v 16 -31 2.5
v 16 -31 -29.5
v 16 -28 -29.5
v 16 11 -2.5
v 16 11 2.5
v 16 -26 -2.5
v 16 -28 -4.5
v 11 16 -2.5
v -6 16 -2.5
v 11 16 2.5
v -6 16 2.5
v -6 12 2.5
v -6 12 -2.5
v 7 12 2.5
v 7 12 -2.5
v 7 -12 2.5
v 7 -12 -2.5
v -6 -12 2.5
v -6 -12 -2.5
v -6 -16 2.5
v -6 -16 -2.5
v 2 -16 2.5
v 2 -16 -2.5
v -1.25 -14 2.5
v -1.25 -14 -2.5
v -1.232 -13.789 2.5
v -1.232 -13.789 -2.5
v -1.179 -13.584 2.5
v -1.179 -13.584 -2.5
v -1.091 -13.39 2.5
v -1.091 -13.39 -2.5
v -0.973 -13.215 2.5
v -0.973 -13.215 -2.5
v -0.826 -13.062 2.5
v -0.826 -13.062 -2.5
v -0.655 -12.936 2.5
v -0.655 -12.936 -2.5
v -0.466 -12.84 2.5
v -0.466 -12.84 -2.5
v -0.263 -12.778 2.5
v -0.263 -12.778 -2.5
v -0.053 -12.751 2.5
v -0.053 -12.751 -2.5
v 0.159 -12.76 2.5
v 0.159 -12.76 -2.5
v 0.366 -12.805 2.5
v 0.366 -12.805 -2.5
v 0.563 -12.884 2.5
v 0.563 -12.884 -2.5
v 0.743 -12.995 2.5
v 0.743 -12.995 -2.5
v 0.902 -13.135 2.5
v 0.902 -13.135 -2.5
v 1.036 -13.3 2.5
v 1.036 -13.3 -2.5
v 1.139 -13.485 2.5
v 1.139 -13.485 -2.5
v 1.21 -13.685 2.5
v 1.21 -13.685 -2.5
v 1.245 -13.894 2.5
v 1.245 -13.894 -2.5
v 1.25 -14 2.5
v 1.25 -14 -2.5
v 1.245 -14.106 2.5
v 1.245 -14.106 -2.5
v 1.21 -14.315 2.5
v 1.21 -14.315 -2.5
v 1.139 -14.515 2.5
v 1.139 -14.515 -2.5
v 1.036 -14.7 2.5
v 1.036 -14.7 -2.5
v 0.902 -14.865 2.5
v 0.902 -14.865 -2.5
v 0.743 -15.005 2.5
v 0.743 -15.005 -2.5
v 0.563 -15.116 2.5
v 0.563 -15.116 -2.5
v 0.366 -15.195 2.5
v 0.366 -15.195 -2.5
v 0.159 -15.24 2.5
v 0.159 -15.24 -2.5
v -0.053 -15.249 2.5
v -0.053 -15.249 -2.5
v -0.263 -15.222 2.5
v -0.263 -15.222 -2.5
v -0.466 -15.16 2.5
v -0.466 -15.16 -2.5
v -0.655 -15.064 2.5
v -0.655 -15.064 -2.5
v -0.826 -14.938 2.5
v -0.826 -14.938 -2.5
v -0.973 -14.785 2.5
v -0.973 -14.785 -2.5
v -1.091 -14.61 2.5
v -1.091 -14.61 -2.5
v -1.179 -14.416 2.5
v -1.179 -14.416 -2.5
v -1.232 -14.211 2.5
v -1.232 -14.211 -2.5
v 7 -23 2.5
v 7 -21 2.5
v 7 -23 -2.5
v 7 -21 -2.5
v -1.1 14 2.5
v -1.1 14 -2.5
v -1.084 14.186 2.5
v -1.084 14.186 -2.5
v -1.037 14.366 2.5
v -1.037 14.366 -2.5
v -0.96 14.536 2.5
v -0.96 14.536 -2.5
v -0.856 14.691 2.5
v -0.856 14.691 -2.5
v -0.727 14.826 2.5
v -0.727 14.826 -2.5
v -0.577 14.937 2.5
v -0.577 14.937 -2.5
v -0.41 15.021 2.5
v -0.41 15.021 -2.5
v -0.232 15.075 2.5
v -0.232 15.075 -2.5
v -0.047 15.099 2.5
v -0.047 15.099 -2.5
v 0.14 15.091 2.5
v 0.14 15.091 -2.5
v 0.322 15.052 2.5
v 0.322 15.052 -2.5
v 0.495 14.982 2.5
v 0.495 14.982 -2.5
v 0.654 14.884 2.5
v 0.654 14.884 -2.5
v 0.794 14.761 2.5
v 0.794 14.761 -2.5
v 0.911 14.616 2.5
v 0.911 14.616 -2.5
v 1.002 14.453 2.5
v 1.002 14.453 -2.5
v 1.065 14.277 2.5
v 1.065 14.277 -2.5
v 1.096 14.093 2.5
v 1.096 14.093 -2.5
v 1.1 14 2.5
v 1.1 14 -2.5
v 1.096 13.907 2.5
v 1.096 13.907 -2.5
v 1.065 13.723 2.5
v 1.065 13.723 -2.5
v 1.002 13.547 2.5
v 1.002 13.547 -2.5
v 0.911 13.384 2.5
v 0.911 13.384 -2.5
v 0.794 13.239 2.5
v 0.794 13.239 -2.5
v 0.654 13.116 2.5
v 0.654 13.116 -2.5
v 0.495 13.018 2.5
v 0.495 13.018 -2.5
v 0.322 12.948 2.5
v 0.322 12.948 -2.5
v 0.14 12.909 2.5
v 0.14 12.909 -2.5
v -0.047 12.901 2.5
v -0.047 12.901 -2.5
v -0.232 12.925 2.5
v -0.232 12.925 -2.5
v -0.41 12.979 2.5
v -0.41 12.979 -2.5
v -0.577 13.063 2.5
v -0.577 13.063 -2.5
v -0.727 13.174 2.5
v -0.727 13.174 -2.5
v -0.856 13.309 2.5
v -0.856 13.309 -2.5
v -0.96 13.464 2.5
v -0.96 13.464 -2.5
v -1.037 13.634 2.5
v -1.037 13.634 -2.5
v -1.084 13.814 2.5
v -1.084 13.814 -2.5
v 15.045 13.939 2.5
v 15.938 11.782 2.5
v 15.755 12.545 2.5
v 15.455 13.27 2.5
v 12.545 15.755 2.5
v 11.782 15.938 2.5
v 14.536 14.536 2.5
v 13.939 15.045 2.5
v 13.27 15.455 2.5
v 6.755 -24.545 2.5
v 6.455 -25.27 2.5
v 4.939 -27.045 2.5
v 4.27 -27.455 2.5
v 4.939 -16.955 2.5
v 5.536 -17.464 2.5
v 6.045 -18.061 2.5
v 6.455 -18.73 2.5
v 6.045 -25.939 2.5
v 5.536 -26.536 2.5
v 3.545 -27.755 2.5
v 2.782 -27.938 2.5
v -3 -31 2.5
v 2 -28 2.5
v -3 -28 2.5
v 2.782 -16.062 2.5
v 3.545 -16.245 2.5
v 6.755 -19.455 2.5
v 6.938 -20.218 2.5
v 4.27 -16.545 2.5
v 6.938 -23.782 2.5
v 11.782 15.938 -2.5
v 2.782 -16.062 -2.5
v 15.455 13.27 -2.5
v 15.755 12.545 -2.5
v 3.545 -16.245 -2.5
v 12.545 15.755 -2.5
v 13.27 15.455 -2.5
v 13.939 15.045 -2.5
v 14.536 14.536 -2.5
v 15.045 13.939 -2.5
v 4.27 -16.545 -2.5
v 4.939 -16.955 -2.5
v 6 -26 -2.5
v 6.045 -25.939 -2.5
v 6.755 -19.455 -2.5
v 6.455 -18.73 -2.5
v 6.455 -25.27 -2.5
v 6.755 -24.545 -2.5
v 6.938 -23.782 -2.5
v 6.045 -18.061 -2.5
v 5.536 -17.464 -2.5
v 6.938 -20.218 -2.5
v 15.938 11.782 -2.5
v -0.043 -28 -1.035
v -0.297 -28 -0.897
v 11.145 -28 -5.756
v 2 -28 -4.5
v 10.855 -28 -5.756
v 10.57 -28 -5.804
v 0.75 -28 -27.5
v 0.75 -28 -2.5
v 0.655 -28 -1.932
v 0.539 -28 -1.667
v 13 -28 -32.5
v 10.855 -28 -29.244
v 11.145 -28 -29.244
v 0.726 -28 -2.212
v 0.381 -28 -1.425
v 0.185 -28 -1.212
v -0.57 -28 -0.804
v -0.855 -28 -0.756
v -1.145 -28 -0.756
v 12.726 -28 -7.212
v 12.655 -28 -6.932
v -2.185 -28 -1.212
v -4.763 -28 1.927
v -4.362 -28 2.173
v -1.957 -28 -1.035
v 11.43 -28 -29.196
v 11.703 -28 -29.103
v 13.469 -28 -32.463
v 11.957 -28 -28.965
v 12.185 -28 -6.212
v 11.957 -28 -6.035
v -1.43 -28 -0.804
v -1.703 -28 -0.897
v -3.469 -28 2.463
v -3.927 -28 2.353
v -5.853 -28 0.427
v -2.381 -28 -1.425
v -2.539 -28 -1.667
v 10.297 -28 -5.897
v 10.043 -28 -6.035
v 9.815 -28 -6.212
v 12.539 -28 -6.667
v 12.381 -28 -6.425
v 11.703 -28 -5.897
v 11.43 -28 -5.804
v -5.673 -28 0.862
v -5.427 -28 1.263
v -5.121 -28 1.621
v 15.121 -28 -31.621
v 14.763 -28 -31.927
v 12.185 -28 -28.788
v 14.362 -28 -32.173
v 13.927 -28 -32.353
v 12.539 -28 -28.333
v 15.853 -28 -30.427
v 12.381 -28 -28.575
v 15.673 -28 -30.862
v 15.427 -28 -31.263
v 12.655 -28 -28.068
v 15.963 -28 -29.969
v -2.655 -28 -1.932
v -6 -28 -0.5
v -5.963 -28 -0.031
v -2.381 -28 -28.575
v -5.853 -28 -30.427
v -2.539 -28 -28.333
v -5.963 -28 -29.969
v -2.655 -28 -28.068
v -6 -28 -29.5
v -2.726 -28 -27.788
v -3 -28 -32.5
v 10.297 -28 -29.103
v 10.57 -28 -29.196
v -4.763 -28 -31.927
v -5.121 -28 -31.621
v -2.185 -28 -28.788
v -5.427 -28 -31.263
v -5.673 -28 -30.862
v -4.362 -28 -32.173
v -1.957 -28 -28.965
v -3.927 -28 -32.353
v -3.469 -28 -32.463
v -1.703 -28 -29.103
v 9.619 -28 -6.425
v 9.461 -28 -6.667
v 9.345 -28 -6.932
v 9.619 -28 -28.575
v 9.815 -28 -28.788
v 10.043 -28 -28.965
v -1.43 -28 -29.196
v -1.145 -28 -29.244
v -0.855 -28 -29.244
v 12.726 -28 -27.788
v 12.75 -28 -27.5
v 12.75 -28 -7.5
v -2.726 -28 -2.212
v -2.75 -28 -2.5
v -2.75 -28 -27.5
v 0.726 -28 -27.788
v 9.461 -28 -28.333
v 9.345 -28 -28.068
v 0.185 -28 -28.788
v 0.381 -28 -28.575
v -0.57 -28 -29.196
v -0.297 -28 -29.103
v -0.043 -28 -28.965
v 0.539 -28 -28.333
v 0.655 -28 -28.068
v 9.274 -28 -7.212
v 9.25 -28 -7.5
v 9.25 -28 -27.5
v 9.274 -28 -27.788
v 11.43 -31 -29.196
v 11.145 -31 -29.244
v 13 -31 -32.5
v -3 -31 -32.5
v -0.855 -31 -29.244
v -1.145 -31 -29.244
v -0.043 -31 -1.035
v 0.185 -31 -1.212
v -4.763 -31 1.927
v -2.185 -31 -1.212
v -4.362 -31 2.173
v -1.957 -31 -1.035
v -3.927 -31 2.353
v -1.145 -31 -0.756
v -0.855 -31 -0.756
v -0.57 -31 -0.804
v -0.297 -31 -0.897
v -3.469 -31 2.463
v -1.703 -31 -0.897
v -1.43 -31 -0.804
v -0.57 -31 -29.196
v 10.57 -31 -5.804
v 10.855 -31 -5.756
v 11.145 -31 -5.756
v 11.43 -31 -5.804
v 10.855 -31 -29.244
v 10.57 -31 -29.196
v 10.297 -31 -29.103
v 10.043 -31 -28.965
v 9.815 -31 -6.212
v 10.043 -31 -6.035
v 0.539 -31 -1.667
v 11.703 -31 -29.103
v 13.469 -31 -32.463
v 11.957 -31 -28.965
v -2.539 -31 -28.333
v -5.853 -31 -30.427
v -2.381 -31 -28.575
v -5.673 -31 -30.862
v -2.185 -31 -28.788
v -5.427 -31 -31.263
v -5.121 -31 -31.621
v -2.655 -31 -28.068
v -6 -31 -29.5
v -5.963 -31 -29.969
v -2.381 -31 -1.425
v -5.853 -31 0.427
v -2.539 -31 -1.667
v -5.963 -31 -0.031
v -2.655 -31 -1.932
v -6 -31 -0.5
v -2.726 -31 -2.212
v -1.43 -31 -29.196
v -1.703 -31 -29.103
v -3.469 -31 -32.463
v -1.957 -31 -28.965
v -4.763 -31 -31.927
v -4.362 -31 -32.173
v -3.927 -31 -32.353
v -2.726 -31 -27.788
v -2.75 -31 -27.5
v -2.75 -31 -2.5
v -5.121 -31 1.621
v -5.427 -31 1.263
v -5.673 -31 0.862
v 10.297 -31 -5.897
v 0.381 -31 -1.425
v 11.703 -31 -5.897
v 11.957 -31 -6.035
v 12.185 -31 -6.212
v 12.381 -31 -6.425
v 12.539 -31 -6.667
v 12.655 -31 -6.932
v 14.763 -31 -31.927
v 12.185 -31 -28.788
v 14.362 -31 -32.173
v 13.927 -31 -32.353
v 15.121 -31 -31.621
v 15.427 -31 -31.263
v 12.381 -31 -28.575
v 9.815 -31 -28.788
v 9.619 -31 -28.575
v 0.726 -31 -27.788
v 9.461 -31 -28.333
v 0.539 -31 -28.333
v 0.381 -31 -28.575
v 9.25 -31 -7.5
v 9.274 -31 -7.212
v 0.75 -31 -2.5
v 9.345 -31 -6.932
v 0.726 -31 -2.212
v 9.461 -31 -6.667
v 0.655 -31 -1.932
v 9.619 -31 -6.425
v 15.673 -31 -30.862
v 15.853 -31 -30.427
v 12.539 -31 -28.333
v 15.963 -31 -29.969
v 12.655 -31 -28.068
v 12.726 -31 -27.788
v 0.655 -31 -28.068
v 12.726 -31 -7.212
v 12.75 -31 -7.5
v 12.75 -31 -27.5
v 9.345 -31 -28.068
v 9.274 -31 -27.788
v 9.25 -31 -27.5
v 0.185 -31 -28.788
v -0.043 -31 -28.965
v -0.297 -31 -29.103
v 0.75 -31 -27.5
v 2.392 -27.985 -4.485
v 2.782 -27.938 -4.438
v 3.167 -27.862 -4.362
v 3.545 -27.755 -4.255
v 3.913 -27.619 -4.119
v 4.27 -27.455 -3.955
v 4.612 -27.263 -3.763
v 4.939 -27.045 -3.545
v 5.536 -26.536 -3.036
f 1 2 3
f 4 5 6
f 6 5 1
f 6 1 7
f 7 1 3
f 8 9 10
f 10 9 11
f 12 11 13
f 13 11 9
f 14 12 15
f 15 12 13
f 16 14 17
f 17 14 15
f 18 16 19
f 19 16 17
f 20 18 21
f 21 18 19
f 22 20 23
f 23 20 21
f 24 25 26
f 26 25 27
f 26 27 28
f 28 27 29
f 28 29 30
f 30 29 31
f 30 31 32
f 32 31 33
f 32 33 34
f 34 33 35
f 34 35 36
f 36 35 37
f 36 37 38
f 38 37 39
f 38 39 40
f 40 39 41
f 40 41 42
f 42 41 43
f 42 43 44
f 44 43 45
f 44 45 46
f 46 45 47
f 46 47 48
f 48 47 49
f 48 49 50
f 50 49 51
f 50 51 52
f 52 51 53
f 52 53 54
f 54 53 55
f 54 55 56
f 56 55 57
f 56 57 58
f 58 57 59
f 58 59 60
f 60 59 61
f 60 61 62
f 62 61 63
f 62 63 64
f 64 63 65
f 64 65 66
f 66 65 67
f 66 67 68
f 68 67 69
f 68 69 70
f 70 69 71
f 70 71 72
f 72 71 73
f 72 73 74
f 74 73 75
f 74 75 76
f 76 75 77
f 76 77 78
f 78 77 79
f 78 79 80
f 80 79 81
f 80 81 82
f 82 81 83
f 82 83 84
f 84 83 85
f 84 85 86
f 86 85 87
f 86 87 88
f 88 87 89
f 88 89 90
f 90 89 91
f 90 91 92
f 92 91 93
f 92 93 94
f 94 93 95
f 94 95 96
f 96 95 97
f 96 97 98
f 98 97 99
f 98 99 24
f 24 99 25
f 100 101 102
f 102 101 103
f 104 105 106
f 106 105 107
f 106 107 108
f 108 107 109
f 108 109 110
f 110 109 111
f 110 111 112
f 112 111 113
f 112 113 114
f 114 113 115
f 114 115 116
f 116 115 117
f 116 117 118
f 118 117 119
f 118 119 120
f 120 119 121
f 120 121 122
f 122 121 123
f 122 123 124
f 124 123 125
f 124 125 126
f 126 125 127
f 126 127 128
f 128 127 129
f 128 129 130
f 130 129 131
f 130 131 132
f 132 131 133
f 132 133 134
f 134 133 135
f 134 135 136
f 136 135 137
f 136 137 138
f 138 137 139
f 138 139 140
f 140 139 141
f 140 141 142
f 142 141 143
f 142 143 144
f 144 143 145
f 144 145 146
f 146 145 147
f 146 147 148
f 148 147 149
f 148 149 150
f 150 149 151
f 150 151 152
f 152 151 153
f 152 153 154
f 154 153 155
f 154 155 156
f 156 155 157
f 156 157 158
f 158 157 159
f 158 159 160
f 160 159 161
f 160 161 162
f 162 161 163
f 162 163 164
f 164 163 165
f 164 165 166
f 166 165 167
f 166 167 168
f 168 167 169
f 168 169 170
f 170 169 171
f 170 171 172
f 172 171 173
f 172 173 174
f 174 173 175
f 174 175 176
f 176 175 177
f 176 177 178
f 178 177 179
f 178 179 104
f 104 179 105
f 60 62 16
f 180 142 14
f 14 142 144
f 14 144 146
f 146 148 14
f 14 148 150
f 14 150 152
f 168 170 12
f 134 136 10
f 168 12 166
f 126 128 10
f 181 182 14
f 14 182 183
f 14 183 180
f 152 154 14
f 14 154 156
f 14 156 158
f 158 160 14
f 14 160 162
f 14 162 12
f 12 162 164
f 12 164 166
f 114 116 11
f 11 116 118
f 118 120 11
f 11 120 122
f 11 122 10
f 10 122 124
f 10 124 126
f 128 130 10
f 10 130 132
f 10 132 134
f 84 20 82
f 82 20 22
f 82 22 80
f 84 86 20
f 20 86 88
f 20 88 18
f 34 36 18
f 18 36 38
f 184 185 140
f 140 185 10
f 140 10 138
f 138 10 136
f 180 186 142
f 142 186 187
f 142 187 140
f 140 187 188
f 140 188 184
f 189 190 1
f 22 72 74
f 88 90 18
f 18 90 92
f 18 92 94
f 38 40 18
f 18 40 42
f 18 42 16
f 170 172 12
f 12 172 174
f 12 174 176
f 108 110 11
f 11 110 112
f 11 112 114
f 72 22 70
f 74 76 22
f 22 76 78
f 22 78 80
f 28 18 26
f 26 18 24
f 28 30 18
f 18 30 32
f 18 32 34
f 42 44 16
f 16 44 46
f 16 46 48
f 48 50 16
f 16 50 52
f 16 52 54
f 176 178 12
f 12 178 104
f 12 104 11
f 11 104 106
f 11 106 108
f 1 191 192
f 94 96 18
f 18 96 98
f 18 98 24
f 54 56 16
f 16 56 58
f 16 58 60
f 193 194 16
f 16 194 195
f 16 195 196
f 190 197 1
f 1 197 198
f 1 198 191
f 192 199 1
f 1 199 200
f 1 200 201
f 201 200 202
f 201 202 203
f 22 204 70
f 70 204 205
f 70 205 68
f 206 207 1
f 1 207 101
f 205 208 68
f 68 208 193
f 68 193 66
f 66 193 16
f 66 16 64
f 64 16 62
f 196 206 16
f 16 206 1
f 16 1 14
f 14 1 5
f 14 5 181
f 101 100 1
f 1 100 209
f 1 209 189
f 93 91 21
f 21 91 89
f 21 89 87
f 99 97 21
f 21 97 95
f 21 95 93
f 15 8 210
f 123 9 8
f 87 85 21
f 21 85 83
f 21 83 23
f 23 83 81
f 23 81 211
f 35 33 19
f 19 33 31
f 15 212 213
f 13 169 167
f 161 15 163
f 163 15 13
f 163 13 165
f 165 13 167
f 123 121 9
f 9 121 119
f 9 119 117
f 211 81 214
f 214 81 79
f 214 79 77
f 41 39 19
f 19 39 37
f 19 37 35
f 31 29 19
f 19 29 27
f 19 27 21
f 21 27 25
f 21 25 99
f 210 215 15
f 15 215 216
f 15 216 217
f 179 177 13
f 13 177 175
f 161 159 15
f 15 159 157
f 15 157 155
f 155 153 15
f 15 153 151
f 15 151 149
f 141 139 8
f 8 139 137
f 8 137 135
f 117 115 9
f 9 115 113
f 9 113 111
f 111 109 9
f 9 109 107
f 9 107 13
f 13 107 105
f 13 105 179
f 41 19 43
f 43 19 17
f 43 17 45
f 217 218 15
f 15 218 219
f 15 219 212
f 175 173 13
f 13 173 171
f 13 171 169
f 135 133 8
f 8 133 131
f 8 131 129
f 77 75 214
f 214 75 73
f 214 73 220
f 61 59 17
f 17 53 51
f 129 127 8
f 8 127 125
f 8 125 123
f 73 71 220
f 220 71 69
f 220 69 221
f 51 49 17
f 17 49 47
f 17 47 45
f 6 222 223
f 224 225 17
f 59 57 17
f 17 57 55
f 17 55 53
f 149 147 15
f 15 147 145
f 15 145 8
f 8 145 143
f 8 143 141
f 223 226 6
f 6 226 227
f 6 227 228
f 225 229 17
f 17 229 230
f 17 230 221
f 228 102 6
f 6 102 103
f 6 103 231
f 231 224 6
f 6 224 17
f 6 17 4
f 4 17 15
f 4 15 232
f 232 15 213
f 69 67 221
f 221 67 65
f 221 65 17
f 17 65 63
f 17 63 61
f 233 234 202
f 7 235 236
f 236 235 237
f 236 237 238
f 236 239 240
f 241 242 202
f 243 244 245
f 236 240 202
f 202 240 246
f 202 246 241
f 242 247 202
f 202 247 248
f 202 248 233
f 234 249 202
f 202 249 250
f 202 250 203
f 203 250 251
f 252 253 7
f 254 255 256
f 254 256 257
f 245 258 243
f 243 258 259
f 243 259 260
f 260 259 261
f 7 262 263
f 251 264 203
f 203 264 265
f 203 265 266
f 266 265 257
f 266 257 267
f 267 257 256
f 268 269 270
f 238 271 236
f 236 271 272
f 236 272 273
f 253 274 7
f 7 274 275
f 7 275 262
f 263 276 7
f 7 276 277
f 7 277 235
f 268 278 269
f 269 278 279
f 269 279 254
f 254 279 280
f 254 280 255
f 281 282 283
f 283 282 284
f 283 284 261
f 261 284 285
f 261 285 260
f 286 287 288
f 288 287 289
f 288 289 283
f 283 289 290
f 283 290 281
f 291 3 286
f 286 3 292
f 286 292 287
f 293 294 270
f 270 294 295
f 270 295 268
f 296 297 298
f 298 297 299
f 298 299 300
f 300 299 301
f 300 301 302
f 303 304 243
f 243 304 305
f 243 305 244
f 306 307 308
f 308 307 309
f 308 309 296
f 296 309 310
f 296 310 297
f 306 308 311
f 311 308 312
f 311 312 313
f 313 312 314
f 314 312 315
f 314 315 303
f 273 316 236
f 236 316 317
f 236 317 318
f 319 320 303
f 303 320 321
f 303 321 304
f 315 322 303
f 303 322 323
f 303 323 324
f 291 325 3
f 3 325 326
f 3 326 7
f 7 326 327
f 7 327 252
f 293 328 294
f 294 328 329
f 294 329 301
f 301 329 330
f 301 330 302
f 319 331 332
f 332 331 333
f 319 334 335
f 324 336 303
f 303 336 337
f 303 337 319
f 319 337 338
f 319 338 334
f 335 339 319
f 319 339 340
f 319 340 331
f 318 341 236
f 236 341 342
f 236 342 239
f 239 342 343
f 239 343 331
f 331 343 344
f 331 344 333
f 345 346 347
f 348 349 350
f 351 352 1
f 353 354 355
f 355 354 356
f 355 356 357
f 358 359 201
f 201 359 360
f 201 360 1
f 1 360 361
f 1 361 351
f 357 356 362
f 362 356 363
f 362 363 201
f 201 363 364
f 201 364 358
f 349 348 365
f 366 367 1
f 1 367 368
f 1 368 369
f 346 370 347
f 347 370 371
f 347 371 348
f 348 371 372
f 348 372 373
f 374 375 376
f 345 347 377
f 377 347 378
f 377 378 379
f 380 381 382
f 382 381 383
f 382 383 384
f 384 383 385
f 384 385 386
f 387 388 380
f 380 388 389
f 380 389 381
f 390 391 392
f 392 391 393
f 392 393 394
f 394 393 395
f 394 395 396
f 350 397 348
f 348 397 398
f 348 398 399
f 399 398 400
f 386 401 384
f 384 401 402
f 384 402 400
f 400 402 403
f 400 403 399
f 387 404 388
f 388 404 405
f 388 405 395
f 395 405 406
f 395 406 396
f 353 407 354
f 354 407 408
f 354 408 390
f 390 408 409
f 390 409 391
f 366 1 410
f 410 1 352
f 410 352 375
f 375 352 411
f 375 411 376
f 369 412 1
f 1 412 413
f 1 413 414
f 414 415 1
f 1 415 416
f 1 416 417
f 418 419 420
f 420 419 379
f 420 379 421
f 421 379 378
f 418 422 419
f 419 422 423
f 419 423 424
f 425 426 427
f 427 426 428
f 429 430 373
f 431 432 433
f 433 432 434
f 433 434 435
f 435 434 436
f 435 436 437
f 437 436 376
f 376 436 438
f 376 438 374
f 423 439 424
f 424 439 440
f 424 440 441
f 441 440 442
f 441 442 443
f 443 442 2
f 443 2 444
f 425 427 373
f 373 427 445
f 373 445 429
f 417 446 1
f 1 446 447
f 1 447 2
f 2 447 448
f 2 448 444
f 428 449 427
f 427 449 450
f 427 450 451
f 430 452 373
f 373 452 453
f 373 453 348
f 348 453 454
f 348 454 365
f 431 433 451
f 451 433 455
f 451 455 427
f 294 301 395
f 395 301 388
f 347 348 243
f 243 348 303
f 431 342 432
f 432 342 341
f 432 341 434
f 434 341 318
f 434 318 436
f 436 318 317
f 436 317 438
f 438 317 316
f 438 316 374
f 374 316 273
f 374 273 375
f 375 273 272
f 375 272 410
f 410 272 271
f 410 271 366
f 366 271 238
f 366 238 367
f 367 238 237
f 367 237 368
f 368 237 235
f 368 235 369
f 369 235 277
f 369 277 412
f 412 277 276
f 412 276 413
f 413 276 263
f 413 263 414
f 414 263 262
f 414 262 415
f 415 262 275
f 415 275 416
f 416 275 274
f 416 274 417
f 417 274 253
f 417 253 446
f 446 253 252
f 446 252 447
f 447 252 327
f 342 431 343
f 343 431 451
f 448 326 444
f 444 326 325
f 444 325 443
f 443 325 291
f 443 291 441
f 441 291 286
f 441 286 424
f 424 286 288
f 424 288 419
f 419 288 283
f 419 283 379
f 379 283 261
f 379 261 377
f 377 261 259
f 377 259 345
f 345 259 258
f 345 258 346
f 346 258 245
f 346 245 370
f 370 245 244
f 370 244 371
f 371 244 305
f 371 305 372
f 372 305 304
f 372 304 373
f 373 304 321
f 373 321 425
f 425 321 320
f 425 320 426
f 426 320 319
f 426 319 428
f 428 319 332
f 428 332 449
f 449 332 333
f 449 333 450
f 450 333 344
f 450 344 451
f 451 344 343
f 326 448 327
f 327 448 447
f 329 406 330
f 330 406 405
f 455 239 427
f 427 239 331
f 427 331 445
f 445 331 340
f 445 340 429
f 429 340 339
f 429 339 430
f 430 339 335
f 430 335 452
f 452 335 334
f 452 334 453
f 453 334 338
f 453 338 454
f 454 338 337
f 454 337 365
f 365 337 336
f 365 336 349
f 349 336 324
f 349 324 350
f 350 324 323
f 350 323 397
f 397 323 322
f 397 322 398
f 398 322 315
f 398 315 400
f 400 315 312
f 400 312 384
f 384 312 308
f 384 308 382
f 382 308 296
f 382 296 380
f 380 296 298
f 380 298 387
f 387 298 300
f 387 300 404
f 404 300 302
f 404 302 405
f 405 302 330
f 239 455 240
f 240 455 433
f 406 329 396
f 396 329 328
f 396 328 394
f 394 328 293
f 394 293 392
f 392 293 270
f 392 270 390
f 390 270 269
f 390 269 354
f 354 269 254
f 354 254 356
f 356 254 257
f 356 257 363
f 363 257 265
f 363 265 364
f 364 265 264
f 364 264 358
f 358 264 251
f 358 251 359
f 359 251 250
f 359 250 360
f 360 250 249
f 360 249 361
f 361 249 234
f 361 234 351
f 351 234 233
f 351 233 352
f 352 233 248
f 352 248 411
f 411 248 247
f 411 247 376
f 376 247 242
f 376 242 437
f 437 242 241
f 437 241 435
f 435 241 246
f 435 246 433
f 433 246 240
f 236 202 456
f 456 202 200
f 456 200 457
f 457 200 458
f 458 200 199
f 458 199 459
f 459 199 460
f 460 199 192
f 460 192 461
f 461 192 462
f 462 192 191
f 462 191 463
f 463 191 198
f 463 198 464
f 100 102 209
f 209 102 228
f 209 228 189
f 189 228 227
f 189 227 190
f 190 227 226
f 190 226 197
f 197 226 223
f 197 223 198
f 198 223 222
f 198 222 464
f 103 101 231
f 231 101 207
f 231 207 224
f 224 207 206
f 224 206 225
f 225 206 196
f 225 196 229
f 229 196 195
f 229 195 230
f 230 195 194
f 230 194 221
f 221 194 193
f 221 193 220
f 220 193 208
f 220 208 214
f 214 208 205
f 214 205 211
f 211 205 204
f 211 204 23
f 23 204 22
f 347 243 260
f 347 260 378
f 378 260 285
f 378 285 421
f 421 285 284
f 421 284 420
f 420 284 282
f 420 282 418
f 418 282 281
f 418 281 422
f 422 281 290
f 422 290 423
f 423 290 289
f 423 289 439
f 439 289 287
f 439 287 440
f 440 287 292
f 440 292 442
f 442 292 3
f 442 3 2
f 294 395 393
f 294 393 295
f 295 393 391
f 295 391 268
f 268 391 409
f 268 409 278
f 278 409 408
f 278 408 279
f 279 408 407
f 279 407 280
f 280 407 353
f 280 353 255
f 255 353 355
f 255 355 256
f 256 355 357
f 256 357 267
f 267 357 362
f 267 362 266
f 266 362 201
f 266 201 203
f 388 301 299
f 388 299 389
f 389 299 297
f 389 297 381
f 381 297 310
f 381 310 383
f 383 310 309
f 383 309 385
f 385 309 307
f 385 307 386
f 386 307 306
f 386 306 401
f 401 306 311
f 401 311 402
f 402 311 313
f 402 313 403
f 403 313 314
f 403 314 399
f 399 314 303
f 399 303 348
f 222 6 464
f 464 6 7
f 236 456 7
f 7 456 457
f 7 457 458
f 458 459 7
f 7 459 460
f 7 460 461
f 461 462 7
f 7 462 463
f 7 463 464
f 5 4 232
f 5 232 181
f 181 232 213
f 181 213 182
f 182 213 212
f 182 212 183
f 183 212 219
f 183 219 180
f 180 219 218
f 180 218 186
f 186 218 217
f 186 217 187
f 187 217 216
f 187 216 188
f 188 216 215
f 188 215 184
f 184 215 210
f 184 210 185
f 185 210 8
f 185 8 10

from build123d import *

# Parameters (mm, degrees)
SKETCH_1_R          = 1.1
SKETCH_1_R_2        = 1.25
EXTRUDE_1_DEPTH     = 2.5
EXTRUDE_START       = 2.5
SKETCH_1_5_W        = 22
SKETCH_1_5_H        = 3
EXTRUDE_3_DEPTH     = 35
CUT_EXTRUDE_1_DEPTH = 20
FILLET_1_R          = 5
FILLET_5_R          = 3
CHAMFER_1_SIZE      = 2
FILLET_6_R          = 5


with BuildPart() as part:
    # 草图1 → 凸台-拉伸1 (new, symmetric)
    with BuildSketch(Plane.XY):
        Polygon((-6, 16), (-6, 12), (7, 12), (7, -12), (-6, -12), (-6, -16), (7, -16), (7, -28), (16, -28), (16, 16), align=None)
        with Locations((0, 14)):
            Circle(SKETCH_1_R, mode=Mode.SUBTRACT)
        with Locations((0, -14)):
            Circle(SKETCH_1_R_2, mode=Mode.SUBTRACT)
    extrude(amount=EXTRUDE_1_DEPTH, both=True)

    # 草图1<5> → 凸台-拉伸3 (add)
    with BuildSketch(Plane.XY.offset(EXTRUDE_START)):
        with Locations((5, -29.5)):
            Rectangle(SKETCH_1_5_W, SKETCH_1_5_H)
    extrude(amount=-EXTRUDE_3_DEPTH)

    # 草图2 → 切除-拉伸1 (cut)
    with BuildSketch(Plane(origin=(0, -28, 0), x_dir=(1, 0, 0), z_dir=(0, 1, 0))):
        with BuildLine():
            Line((0.75, 2.5), (0.75, 27.5))
            ThreePointArc((0.75, 27.5), (-1, 29.25), (-2.75, 27.5))
            Line((-2.75, 27.5), (-2.75, 2.5))
            ThreePointArc((-2.75, 2.5), (-1, 0.75), (0.75, 2.5))
        make_face()
        with BuildLine():
            Line((12.75, 7.5), (12.75, 27.5))
            ThreePointArc((12.75, 27.5), (11, 29.25), (9.25, 27.5))
            Line((9.25, 27.5), (9.25, 7.5))
            ThreePointArc((9.25, 7.5), (11, 5.75), (12.75, 7.5))
        make_face()
    extrude(amount=-CUT_EXTRUDE_1_DEPTH, mode=Mode.SUBTRACT)

    # 圆角1
    fillet_1_edges = [part.edges().sort_by_distance(p)[0] for p in [
        (7, -28, 0),
        (7, -16, 0),
    ]]
    fillet(fillet_1_edges, radius=FILLET_1_R)

    # 圆角5
    fillet_5_edges = [part.edges().sort_by_distance(p)[0] for p in [
        (16, -29.5, -32.5),
        (-6, -29.5, 2.5),
        (-6, -29.5, -32.5),
    ]]
    fillet(fillet_5_edges, radius=FILLET_5_R)

    # 倒角1
    chamfer_1_edges = [part.edges().sort_by_distance(p)[0] for p in [
        (9, -28, -2.5),
    ]]
    chamfer(chamfer_1_edges, length=CHAMFER_1_SIZE)

    # 圆角6
    fillet_6_edges = [part.edges().sort_by_distance(p)[0] for p in [
        (16, 16, 0),
    ]]
    fillet(fillet_6_edges, radius=FILLET_6_R)


solid = part.part
